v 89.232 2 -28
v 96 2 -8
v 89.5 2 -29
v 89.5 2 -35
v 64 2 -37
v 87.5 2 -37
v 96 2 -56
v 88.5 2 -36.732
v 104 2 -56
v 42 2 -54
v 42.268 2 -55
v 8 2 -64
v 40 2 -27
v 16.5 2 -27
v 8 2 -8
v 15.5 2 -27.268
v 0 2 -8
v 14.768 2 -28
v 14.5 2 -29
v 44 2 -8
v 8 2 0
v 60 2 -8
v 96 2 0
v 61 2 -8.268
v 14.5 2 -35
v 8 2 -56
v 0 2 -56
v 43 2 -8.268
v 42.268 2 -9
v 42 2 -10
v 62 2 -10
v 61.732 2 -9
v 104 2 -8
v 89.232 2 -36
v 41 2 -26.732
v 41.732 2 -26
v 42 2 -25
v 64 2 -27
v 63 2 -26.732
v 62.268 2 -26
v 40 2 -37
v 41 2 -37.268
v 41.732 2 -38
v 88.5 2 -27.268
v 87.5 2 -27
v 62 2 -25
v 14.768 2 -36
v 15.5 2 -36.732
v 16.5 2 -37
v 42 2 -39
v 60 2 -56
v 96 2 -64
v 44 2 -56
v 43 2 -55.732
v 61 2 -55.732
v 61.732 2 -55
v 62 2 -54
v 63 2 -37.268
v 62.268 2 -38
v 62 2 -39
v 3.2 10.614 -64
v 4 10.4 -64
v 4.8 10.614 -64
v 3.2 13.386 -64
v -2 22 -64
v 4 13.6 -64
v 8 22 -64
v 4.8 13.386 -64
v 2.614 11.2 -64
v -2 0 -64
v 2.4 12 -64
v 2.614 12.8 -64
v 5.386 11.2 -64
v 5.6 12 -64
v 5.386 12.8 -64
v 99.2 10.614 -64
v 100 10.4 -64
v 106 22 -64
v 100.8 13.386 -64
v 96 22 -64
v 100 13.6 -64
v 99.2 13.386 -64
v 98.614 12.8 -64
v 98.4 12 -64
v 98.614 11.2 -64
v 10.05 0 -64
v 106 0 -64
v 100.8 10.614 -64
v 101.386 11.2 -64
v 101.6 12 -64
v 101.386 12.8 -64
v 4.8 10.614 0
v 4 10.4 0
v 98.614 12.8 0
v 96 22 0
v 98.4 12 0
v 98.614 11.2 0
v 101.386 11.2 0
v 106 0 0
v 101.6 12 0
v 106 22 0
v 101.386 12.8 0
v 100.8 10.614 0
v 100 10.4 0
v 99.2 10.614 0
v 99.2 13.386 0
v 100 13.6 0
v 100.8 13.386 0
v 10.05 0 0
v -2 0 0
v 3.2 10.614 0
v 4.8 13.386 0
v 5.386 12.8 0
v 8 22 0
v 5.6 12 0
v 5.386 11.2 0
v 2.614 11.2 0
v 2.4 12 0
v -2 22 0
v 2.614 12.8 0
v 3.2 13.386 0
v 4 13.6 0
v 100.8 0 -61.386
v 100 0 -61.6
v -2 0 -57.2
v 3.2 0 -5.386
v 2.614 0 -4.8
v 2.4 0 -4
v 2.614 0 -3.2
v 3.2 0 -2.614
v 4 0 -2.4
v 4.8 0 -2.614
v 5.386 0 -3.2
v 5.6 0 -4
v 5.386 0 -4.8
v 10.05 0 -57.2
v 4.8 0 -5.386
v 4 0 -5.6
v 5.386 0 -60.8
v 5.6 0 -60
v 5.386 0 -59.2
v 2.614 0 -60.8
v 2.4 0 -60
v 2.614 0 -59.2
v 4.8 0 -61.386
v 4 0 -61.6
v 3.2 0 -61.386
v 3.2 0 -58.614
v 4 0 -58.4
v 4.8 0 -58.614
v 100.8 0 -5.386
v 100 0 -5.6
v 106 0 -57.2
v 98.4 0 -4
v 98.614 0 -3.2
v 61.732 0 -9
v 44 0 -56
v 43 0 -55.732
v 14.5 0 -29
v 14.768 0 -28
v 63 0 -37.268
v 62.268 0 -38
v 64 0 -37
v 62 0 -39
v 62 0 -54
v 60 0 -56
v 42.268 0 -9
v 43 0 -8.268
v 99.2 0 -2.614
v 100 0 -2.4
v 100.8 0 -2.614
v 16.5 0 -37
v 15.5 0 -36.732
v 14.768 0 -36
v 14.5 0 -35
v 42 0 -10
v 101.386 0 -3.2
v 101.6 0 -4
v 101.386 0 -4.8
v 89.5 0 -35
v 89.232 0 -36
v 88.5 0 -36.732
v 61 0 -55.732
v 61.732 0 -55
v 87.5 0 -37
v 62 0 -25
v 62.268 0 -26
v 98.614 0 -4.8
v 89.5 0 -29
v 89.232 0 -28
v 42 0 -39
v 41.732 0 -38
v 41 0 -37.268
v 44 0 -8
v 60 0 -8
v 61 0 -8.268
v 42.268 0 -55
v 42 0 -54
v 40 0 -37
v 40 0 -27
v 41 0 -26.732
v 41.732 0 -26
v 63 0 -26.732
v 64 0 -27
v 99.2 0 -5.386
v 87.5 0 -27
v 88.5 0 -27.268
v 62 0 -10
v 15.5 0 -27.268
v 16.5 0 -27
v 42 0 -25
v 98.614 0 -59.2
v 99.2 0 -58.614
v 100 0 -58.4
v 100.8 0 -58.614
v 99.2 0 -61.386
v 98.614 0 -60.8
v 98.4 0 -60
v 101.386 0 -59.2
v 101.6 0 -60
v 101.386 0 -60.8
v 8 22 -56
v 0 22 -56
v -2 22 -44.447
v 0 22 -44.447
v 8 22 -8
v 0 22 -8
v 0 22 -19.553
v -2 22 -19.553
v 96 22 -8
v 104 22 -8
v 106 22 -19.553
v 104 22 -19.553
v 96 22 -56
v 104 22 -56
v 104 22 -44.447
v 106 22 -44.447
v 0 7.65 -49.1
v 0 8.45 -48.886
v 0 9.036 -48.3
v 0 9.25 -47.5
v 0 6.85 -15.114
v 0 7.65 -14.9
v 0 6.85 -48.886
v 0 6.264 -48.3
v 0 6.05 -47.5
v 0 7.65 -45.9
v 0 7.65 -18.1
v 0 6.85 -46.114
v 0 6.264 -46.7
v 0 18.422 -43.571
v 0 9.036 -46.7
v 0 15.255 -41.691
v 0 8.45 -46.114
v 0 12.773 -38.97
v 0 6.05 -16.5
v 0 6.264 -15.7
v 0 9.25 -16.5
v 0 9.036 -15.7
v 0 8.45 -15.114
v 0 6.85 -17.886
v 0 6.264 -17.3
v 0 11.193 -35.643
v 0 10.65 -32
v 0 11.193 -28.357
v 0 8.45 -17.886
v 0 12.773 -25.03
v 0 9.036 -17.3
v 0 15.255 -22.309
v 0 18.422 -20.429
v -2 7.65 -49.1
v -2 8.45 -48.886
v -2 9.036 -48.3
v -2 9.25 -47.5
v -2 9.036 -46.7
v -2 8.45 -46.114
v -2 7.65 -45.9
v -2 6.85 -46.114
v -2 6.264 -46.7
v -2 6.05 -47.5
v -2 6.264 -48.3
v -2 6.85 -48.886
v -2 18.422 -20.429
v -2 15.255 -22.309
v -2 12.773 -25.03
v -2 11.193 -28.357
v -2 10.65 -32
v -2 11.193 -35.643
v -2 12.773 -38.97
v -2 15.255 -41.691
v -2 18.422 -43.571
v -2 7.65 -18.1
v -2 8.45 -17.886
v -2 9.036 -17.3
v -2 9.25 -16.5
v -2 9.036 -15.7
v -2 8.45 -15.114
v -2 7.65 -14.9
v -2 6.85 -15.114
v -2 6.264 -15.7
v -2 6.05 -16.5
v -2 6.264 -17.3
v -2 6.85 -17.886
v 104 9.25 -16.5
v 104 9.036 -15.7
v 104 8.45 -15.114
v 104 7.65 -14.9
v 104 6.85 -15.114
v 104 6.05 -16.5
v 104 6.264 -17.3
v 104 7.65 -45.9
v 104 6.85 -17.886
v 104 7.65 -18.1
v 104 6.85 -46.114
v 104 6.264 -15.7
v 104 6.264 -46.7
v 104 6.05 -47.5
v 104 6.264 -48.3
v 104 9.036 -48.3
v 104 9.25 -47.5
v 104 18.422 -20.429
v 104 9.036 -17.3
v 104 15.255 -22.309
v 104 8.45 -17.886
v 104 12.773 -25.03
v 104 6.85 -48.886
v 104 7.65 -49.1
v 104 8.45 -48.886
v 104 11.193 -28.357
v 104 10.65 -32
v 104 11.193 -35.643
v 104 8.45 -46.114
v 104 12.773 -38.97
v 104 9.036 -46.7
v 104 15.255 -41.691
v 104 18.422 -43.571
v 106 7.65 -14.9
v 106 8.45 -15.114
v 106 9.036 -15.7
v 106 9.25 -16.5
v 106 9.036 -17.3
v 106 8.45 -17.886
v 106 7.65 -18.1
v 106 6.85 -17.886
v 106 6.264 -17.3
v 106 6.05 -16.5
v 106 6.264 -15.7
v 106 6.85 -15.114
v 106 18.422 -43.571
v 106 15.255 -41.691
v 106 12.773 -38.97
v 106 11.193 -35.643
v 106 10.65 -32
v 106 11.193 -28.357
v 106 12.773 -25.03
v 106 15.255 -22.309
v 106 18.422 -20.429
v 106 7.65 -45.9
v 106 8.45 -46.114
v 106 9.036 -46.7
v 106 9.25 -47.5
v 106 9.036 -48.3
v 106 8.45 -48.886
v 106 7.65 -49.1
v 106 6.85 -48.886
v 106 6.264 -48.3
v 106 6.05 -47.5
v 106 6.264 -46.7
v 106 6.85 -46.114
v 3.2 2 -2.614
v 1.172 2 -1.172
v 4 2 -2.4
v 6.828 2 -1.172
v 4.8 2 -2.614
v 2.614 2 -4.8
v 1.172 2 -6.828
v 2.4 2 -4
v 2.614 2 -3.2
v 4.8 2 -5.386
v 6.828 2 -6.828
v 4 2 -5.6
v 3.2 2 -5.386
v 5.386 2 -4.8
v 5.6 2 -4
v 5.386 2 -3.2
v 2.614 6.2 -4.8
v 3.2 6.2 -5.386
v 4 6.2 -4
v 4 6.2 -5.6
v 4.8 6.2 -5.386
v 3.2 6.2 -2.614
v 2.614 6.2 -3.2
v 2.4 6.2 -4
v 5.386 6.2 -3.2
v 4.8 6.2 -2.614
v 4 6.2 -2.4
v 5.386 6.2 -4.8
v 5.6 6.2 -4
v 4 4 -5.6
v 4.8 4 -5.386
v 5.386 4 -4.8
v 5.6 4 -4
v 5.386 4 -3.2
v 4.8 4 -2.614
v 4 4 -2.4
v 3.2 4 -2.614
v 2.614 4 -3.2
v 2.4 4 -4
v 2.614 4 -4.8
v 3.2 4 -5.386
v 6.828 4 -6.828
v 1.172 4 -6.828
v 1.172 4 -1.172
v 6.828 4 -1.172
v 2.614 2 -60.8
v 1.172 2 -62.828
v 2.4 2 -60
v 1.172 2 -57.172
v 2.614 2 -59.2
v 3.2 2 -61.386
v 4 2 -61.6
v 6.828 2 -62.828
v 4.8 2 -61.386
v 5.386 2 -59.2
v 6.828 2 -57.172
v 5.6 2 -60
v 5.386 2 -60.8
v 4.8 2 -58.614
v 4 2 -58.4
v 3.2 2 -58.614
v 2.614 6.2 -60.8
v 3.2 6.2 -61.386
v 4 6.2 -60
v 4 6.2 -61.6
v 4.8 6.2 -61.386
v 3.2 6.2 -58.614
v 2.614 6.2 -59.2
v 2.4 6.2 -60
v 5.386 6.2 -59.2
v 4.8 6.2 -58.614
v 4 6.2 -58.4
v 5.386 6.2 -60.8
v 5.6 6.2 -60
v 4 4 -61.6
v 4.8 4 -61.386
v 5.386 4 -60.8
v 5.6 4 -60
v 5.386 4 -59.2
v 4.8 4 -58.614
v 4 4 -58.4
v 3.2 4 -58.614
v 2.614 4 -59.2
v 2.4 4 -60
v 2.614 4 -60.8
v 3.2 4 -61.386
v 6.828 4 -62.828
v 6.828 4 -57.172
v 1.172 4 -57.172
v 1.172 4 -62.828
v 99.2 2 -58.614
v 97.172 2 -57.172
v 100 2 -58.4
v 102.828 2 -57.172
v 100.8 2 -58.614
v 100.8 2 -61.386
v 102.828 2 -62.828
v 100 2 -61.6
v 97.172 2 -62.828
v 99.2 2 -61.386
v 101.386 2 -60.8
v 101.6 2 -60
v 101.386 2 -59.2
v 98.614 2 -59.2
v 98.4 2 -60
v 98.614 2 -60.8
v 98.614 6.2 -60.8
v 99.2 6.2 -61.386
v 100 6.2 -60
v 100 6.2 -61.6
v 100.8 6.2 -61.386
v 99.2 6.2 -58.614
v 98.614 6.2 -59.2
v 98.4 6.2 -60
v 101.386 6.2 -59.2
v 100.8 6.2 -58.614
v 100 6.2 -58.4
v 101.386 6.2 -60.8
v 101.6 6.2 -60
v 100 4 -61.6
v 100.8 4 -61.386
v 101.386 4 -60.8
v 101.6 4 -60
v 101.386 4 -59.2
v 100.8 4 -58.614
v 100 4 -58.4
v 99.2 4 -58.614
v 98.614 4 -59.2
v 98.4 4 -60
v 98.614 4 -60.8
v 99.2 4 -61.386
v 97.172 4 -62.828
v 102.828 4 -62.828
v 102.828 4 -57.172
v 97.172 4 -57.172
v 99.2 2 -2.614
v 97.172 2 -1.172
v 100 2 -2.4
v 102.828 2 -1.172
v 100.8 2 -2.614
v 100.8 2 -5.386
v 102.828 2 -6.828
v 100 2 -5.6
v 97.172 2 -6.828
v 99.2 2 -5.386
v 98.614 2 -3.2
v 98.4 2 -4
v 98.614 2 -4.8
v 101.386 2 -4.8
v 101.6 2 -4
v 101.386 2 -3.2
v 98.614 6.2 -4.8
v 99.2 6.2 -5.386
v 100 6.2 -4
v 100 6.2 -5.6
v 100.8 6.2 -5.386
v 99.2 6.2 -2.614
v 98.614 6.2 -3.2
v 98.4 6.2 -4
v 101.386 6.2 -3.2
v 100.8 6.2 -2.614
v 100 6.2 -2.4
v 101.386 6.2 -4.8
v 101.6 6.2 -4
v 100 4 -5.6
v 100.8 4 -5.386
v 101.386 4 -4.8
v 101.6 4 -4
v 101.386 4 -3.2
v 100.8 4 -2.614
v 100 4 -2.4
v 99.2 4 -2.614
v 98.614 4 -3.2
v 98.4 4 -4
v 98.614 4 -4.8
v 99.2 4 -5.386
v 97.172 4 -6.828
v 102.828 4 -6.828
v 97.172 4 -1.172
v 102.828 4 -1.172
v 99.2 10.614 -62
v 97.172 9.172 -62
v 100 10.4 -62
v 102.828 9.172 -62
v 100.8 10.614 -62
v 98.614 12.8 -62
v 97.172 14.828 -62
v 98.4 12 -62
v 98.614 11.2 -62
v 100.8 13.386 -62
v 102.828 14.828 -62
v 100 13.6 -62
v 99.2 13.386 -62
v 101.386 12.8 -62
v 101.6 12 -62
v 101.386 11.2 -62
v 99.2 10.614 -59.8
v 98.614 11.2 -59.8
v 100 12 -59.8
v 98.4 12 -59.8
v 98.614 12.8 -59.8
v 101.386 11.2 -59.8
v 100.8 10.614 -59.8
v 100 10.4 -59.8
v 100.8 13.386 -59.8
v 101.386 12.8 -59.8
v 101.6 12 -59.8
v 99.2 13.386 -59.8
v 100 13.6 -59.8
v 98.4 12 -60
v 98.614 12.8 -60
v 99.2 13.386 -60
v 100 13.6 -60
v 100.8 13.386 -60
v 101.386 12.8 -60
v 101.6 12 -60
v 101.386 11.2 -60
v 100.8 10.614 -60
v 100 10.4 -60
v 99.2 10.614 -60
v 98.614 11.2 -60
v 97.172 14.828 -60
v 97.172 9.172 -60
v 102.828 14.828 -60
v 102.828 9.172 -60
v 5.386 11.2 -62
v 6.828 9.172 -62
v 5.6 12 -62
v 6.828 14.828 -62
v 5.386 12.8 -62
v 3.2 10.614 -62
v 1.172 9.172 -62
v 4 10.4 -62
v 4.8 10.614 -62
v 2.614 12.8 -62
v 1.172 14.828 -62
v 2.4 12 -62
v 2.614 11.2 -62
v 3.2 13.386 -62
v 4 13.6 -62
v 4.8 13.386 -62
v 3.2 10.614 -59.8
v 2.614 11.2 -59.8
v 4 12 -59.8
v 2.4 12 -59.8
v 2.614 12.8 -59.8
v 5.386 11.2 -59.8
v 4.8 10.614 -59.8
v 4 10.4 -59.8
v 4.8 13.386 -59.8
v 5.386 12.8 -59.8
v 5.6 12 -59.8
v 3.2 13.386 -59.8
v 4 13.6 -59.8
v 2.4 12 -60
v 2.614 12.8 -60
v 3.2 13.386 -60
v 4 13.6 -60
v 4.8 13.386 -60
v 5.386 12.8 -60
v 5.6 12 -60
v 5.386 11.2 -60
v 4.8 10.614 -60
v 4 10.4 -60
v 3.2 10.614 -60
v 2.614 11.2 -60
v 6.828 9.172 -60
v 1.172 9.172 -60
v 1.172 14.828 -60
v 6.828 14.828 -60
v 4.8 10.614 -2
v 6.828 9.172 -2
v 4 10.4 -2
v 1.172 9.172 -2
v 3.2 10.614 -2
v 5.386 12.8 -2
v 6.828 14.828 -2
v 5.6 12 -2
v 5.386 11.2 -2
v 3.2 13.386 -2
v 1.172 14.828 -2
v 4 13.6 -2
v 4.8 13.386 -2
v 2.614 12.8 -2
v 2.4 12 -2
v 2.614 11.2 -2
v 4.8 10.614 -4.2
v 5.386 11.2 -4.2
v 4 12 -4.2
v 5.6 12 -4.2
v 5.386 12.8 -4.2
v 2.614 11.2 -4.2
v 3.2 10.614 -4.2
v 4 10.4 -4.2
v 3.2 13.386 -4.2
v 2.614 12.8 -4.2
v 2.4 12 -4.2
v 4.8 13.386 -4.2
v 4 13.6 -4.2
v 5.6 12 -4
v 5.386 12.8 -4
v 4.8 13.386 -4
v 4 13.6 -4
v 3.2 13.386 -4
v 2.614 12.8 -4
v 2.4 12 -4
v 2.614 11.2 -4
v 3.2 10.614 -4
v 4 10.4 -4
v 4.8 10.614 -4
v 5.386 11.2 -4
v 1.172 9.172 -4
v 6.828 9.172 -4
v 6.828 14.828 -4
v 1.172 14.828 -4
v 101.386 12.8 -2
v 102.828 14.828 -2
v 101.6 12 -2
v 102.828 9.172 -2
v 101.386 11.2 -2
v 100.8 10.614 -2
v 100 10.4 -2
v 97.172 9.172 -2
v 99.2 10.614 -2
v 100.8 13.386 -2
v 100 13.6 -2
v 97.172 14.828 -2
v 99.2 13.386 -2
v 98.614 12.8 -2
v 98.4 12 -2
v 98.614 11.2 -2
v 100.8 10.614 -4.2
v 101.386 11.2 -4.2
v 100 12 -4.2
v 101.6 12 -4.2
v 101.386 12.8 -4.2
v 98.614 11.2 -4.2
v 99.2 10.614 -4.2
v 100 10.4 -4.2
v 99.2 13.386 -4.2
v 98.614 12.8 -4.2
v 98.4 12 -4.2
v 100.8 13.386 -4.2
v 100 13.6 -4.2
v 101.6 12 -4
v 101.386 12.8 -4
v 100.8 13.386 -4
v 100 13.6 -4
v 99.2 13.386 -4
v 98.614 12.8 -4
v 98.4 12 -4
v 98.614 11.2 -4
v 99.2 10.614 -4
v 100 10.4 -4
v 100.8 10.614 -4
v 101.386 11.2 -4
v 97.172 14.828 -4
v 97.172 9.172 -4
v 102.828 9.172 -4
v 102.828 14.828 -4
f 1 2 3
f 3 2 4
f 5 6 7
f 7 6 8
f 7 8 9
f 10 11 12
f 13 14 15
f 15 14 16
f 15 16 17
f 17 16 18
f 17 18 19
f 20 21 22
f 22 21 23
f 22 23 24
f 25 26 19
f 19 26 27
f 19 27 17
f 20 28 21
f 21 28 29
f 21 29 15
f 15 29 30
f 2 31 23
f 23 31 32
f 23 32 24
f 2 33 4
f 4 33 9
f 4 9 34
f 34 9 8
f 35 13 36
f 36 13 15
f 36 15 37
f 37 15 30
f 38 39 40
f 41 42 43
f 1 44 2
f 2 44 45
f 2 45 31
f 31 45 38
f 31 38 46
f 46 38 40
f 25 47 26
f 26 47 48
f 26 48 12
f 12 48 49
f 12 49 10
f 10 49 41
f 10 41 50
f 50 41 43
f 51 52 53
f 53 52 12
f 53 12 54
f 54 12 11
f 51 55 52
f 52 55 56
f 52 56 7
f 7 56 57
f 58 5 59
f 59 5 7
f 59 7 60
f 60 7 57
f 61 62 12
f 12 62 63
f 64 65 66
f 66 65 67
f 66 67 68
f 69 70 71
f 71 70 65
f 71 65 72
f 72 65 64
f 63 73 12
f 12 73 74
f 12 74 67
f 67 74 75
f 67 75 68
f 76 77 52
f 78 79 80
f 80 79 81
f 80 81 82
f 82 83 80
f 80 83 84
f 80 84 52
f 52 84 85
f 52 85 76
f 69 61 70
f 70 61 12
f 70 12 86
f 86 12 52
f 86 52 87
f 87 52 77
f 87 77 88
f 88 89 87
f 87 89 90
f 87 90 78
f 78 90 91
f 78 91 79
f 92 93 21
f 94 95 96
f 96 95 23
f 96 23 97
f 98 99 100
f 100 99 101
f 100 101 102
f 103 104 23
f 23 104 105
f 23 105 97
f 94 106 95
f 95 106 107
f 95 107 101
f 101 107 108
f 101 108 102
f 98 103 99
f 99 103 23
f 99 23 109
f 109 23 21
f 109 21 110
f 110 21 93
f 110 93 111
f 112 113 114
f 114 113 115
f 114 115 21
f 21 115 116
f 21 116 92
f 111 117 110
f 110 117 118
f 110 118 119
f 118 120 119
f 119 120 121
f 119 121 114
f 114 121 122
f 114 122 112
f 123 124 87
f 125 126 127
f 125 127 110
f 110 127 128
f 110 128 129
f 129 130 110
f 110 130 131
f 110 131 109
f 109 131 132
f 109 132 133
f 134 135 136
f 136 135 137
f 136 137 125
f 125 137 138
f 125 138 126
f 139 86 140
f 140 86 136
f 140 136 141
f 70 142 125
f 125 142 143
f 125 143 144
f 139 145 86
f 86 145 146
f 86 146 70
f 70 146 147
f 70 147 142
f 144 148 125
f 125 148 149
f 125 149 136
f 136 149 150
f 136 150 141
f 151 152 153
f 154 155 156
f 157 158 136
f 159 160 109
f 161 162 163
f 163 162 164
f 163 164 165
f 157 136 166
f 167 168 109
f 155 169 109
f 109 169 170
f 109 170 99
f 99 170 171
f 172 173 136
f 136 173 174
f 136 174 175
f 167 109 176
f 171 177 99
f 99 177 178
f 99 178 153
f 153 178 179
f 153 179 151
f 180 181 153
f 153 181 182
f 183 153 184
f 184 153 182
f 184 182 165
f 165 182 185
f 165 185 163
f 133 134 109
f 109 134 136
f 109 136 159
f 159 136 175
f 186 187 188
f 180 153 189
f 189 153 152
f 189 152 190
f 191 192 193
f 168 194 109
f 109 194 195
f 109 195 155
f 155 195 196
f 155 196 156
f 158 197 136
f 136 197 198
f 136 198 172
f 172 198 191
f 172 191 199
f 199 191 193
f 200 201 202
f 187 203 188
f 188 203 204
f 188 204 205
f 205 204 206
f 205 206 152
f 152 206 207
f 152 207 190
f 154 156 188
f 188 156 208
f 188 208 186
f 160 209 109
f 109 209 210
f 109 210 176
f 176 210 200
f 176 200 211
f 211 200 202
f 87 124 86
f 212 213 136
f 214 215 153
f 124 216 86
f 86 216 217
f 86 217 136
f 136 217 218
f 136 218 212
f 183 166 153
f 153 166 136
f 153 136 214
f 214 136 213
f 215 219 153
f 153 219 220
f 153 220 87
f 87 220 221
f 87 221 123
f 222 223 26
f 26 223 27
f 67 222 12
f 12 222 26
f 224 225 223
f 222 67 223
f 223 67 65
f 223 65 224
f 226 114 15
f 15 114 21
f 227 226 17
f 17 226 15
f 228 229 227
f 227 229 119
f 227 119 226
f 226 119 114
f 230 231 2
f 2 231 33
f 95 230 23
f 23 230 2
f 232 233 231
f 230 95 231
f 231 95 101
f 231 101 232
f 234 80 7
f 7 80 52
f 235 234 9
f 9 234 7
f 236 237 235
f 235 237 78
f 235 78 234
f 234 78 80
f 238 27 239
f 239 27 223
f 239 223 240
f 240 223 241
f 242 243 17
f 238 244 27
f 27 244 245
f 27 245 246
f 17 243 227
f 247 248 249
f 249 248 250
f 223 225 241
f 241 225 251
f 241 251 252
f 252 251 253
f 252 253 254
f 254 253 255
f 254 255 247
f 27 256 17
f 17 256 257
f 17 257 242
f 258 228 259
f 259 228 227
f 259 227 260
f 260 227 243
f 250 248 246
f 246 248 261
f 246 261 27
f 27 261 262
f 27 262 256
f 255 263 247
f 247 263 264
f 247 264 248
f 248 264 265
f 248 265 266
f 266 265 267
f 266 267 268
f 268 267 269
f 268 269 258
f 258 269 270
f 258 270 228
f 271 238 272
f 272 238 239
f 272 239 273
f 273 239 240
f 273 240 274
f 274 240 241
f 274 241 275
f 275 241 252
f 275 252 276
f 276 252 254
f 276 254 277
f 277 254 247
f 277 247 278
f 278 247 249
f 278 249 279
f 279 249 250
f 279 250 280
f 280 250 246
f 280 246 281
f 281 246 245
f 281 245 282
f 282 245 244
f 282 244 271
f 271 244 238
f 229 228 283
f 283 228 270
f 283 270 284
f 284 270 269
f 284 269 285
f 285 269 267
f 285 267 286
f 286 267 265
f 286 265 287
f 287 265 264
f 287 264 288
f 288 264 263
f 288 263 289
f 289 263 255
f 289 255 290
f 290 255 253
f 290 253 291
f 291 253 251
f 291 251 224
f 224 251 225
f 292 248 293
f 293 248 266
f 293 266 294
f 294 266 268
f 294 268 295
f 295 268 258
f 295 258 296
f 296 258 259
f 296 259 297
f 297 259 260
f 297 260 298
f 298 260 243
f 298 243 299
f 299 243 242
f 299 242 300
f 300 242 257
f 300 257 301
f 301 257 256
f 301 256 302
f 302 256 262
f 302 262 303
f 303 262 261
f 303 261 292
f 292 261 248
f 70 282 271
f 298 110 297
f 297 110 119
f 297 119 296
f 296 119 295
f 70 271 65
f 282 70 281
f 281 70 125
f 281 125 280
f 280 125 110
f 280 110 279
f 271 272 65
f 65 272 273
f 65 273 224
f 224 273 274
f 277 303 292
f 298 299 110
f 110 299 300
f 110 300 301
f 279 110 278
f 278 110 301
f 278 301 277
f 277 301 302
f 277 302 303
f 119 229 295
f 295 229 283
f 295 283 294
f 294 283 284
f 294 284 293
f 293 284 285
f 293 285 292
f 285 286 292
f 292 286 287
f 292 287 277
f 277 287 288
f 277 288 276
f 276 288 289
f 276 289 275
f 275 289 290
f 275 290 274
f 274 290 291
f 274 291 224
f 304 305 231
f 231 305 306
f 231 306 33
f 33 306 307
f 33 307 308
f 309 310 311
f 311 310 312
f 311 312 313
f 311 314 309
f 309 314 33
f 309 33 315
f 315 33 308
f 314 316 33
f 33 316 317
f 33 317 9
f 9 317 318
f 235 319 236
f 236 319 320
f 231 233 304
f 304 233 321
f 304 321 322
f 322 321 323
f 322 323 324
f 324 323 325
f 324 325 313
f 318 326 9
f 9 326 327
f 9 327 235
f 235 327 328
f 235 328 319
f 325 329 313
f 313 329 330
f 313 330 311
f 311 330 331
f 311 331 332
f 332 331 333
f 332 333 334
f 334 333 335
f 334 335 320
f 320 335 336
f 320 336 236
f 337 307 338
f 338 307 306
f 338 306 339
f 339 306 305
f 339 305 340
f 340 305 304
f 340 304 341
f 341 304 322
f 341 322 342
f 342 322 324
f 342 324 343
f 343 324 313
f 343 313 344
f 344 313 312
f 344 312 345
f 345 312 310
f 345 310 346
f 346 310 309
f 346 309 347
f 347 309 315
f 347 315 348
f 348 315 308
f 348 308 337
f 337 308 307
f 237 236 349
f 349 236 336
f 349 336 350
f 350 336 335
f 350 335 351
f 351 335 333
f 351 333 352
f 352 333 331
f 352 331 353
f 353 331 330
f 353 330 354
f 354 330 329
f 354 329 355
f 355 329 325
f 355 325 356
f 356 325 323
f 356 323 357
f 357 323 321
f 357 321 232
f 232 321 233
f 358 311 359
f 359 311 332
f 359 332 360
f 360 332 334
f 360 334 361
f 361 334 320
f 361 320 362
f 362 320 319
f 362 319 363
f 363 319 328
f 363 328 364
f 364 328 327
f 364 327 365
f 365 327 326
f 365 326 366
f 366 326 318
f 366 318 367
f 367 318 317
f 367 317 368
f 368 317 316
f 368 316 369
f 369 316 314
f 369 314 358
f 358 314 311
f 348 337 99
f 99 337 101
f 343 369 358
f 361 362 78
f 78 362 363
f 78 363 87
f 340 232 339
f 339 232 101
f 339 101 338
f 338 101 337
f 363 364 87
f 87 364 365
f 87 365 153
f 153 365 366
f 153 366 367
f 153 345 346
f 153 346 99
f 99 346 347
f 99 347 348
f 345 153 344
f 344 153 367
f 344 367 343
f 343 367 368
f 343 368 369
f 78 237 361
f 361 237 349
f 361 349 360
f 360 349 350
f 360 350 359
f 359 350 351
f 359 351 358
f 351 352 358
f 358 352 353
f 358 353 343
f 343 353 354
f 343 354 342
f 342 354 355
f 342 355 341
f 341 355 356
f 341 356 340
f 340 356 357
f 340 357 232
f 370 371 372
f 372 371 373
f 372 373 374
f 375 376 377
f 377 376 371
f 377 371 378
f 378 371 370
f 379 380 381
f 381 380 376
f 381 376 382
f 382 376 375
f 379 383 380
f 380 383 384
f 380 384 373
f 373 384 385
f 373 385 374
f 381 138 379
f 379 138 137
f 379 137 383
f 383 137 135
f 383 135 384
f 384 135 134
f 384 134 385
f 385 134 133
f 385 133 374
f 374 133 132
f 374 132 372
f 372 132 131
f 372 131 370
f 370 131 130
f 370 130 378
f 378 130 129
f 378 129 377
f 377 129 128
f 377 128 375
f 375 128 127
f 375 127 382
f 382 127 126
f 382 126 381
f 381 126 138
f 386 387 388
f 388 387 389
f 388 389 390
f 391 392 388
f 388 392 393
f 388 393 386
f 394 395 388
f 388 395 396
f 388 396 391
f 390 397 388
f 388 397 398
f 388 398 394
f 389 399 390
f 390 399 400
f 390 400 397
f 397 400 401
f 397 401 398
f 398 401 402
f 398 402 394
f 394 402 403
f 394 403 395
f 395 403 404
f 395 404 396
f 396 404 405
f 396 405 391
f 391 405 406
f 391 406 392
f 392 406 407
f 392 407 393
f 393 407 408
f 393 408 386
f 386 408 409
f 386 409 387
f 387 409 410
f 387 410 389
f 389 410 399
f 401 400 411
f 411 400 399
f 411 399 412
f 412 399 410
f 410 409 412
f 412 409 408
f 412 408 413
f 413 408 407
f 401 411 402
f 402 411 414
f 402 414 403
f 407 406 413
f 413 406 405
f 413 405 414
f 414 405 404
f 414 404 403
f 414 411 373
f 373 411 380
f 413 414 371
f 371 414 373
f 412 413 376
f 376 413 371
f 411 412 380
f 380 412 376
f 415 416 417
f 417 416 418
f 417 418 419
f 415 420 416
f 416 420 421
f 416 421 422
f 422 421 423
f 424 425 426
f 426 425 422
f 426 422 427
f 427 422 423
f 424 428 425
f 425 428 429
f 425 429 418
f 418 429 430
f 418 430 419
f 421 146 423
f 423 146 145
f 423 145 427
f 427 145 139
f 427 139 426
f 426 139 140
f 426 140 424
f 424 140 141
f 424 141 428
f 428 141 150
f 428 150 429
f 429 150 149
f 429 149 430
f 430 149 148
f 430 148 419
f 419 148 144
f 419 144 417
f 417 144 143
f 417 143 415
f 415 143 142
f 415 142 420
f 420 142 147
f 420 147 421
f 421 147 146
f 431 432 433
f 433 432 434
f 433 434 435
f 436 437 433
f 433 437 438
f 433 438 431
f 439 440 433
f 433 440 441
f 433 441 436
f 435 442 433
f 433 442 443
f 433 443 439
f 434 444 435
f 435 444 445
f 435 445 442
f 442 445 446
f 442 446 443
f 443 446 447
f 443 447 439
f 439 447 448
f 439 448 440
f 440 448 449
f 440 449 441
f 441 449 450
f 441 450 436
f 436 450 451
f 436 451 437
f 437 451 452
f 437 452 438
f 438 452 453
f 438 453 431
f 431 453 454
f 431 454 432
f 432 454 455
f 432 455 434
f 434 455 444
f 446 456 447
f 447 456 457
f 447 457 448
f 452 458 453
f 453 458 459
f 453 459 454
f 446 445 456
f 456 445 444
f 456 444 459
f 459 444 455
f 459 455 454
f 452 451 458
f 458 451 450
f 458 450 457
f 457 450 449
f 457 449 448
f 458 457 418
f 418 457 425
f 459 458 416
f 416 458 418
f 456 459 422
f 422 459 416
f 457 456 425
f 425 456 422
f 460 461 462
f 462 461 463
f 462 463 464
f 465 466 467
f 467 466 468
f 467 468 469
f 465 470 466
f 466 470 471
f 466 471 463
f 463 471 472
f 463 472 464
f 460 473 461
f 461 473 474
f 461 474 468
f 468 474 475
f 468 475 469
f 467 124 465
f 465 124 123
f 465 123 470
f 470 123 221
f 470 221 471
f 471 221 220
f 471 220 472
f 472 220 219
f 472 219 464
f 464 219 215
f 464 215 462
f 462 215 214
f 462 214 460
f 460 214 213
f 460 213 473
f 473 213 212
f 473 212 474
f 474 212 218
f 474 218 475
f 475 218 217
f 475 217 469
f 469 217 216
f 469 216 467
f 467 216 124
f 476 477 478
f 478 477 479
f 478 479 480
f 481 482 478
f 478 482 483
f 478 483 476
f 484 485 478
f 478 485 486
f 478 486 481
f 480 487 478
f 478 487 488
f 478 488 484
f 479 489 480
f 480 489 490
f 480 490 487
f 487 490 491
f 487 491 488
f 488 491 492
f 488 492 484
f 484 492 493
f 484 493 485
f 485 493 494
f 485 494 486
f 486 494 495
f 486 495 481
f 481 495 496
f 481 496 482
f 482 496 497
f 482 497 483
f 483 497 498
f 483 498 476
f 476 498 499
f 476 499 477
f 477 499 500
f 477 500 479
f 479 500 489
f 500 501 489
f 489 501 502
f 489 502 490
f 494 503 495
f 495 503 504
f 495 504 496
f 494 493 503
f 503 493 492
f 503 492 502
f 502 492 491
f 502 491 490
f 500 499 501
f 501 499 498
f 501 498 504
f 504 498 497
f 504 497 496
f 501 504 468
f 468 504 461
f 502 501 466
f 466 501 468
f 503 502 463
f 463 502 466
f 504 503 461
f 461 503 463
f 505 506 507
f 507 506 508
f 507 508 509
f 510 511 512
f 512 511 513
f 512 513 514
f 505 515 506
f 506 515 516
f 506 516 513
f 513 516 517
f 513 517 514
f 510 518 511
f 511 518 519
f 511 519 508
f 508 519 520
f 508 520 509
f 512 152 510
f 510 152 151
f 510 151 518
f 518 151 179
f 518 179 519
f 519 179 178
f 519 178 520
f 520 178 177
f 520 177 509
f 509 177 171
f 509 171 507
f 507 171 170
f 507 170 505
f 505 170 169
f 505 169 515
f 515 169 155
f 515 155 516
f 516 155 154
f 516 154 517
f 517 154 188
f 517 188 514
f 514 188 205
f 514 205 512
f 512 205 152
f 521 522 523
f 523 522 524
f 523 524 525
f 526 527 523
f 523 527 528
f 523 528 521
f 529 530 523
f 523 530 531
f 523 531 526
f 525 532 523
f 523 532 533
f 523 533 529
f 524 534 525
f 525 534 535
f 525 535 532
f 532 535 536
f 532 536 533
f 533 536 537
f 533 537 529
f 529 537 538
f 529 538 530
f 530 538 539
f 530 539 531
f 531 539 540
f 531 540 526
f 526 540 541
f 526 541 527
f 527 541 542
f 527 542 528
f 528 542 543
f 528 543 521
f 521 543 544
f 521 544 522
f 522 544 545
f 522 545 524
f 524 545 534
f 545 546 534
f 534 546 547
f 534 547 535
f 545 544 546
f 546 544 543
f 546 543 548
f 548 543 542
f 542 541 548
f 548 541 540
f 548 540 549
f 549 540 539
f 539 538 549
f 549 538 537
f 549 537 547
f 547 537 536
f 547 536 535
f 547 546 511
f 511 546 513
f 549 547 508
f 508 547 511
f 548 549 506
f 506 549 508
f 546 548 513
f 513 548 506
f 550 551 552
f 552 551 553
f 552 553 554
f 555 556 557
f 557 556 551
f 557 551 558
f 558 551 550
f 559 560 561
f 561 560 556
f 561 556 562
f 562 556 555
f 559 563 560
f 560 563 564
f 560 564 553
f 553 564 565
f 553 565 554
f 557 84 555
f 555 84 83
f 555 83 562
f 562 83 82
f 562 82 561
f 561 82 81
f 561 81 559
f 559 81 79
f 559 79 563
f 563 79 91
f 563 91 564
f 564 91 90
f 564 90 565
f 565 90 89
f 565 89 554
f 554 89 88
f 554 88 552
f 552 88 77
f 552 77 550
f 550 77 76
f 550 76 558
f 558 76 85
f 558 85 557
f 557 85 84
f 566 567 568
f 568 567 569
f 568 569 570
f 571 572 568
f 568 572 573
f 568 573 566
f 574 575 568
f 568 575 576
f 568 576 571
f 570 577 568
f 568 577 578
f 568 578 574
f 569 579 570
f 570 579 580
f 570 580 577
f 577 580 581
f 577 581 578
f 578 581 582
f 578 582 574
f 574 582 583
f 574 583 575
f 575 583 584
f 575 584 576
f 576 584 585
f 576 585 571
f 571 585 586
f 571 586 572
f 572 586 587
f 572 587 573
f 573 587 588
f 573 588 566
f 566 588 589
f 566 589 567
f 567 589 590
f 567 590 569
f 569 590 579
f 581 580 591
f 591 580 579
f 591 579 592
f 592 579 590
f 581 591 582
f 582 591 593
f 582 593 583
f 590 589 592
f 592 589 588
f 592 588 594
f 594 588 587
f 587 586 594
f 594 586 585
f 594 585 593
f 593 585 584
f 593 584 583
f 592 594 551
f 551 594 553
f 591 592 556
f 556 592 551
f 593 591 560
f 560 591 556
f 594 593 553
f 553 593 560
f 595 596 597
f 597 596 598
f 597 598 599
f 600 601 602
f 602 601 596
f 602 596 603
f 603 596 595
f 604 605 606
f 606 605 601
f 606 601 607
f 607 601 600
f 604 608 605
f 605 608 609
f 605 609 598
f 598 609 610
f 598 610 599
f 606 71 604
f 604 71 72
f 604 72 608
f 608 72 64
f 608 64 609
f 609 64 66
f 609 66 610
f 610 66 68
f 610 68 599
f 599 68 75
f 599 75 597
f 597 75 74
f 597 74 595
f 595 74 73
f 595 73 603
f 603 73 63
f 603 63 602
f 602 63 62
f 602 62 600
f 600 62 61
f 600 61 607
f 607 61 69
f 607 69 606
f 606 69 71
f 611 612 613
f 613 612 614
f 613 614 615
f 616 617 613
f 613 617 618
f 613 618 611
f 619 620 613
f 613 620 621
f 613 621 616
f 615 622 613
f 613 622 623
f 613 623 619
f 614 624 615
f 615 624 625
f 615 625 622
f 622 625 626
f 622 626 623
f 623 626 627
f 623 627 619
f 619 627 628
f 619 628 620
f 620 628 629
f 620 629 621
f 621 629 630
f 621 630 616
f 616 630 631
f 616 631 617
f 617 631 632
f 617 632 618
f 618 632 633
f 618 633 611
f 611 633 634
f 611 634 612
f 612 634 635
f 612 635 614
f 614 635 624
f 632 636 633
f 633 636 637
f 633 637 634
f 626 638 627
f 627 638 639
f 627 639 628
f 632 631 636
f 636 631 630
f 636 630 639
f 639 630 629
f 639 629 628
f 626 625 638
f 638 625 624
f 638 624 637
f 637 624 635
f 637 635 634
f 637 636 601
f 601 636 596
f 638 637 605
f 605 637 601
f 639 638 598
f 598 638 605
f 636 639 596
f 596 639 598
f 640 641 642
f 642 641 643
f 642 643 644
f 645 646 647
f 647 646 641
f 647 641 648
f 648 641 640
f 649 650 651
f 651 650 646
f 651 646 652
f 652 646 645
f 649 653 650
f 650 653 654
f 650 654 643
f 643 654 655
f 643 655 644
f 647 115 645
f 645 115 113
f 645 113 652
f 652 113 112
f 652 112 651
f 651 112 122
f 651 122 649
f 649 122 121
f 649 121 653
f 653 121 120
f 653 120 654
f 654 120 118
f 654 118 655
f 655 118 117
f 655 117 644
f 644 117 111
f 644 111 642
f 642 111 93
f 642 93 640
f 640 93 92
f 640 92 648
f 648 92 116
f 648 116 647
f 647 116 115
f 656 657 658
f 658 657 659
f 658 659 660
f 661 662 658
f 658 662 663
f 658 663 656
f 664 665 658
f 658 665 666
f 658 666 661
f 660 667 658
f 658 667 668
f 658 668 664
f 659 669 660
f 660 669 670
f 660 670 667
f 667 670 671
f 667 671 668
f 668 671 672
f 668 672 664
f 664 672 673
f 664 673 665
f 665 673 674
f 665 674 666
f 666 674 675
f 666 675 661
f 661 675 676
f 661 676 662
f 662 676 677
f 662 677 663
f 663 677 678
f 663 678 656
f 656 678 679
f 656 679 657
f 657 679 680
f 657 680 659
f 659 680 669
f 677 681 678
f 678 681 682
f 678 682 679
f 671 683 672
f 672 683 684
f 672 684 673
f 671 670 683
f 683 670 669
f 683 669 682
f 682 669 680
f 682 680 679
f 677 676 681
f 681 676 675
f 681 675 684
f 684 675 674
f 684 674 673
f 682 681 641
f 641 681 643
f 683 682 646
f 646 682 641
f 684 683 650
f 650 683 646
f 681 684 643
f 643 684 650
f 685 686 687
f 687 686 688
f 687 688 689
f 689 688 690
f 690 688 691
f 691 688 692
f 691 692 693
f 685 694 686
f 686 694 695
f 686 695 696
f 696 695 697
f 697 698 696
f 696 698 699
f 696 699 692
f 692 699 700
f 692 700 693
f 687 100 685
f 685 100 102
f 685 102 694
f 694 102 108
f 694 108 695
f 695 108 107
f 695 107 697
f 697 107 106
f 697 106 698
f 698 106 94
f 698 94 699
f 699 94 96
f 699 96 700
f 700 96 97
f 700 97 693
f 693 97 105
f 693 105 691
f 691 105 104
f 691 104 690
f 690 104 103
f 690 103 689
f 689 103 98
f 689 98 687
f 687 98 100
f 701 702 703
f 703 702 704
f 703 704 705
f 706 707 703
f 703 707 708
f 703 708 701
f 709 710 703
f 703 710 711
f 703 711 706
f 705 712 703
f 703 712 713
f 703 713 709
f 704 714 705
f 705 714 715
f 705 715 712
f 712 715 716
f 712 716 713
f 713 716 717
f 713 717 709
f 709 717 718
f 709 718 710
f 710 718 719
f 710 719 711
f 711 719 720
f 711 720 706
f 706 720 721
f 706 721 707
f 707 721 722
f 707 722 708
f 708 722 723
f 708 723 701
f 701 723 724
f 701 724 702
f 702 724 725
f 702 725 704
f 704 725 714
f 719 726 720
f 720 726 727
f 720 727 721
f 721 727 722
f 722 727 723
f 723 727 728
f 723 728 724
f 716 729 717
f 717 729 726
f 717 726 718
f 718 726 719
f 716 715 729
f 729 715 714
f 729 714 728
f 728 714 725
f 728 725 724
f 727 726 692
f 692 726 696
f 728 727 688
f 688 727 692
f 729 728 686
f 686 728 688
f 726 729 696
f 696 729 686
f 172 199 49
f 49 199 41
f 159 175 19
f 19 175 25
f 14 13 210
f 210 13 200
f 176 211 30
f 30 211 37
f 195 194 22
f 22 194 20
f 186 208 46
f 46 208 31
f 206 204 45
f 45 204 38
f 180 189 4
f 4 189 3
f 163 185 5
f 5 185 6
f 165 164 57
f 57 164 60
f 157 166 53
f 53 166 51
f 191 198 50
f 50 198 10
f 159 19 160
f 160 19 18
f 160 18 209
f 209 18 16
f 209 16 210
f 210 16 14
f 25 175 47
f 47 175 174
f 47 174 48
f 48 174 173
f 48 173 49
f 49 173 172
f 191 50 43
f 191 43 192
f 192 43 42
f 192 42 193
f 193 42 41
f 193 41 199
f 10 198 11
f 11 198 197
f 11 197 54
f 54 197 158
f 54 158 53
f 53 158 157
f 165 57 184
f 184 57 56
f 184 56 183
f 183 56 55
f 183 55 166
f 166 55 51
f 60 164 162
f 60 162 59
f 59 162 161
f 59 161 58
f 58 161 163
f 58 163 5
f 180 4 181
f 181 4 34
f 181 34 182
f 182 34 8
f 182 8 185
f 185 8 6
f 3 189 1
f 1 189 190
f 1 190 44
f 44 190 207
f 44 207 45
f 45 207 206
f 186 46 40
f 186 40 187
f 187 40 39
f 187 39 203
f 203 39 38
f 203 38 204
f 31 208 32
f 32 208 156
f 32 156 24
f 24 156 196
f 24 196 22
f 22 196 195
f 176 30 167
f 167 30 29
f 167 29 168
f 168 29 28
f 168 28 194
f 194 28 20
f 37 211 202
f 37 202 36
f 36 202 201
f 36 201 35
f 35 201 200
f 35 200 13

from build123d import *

# Parameters (mm, degrees)
SZKIC1_W                    = 104
SZKIC1_H                    = 64
DODANIE_WYCI_GNI_CIE1_DEPTH = 2
SZKIC2_W                    = 8
SZKIC2_H                    = 8
DODANIE_WYCI_GNI_CIE2_DEPTH = 20
SZKIC4_R                    = 1.6
DODANIE_WYCI_GNI_CIE3_DEPTH = 2
DODANIE_WYCI_GNI_CIE4_START = 2
SZKIC5_R                    = 1.6
DODANIE_WYCI_GNI_CIE4_DEPTH = 2
SFAZOWANIE1_SIZE            = 2
SZKIC6_W                    = 5.65685425
SZKIC6_H                    = 5.65685425
SZKIC6_R                    = 1.6
WYTNIJ_WYCI_GNI_CIE2_DEPTH  = 4
SZKIC6_AGAIN_R              = 1.6
WYTNIJ_WYCI_GNI_CIE3_DEPTH  = 6.2
DODANIE_WYCI_GNI_CIE5_DEPTH = 2
SZKIC8_W                    = 5.65685425
SZKIC8_H                    = 5.65685425
SZKIC8_R                    = 1.6
WYTNIJ_WYCI_GNI_CIE4_DEPTH  = 4
SZKIC8_2_R                  = 1.6
WYTNIJ_WYCI_GNI_CIE5_DEPTH  = 4.2
SZKIC8_3_W                  = 5.65685425
SZKIC8_3_H                  = 5.65685425
SZKIC8_3_R                  = 1.6
DODANIE_WYCI_GNI_CIE6_DEPTH = 2
WYTNIJ_WYCI_GNI_CIE6_START  = -4
SZKIC9_W                    = 5.65685425
SZKIC9_H                    = 5.65685425
SZKIC9_R                    = 1.6
WYTNIJ_WYCI_GNI_CIE6_DEPTH  = 4
WYTNIJ_WYCI_GNI_CIE7_START  = -4.2
SZKIC9_2_R                  = 1.6
WYTNIJ_WYCI_GNI_CIE7_DEPTH  = 4.2
DODANIE_WYCI_GNI_CIE7_START = -2
SZKIC9_3_W                  = 5.65685425
SZKIC9_3_H                  = 5.65685425
SZKIC9_3_R                  = 1.6
DODANIE_WYCI_GNI_CIE7_DEPTH = 2
SZKIC10_W                   = 20
SZKIC10_H                   = 10
SZKIC10_W_2                 = 27.5
SZKIC10_H_2                 = 19
WYTNIJ_WYCI_GNI_CIE8_DEPTH  = 9
SZKIC11_W                   = 2
SZKIC11_H                   = 2
DODANIE_WYCI_GNI_CIE8_DEPTH = 64
ZAOKR_GLENIE1_R             = 2


with BuildPart() as part:
    # Szkic1 → Dodanie-wyciągnięcie1 (new body)
    with BuildSketch(Plane(origin=(0, 0, 0), x_dir=(1, 0, 0), z_dir=(0, 1, 0))):
        with Locations((52, 32)):
            Rectangle(SZKIC1_W, SZKIC1_H)
    extrude(amount=DODANIE_WYCI_GNI_CIE1_DEPTH)

    # Szkic2 → Dodanie-wyciągnięcie2 (add)
    with BuildSketch(Plane(origin=(0, 2, 0), x_dir=(1, 0, 0), z_dir=(0, 1, 0))):
        with Locations((4, 60)):
            Rectangle(SZKIC2_W, SZKIC2_H)
        with Locations((4, 4)):
            Rectangle(SZKIC2_W, SZKIC2_H)
        with Locations((100, 4)):
            Rectangle(SZKIC2_W, SZKIC2_H)
        with Locations((100, 60)):
            Rectangle(SZKIC2_W, SZKIC2_H)
    extrude(amount=DODANIE_WYCI_GNI_CIE2_DEPTH)

    # Szkic4 → Dodanie-wyciągnięcie3 (add)
    # profile 1 of 2: a face of its own
    with BuildSketch(Plane.ZY):
        with BuildLine():
            Line((-8, 2), (-8, 22))
            Line((-8, 22), (-19.553012413, 22))
            ThreePointArc((-19.553012413, 22), (-32, 10.65), (-44.446987587, 22))
            Line((-44.446987587, 22), (-56, 22))
            Line((-56, 22), (-56, 2))
            Line((-56, 2), (-8, 2))
        make_face()
        with Locations((-47.5, 7.65)):
            Circle(SZKIC4_R, mode=Mode.SUBTRACT)
        with Locations((-16.5, 7.65)):
            Circle(SZKIC4_R, mode=Mode.SUBTRACT)
    # profile 2 of 2: a face of its own
    with BuildSketch(Plane.ZY):
        Polygon((-64, 22), (-64, 0), (0, 0), (0, 22), (-8, 22), (-8, 2), (-56, 2), (-56, 22), align=None)
    extrude(amount=DODANIE_WYCI_GNI_CIE3_DEPTH)

    # Szkic5 → Dodanie-wyciągnięcie4 (add)
    # profile 1 of 2: a face of its own
    with BuildSketch(Plane(origin=(104, 0, 0), x_dir=(0, 0, -1), z_dir=(1, 0, 0)).offset(DODANIE_WYCI_GNI_CIE4_START)):
        with BuildLine():
            Line((56, 2), (56, 22))
            Line((56, 22), (44.446987587, 22))
            ThreePointArc((44.446987587, 22), (32, 10.65), (19.553012413, 22))
            Line((19.553012413, 22), (8, 22))
            Line((8, 22), (8, 2))
            Line((8, 2), (56, 2))
        make_face()
        with Locations(Location((16.5, 7.65, 0), (0, 0, 180))):
            Circle(SZKIC5_R, mode=Mode.SUBTRACT)
        with Locations(Location((47.5, 7.65, 0), (0, 0, 180))):
            Circle(SZKIC5_R, mode=Mode.SUBTRACT)
    # profile 2 of 2: a face of its own
    with BuildSketch(Plane(origin=(104, 0, 0), x_dir=(0, 0, -1), z_dir=(1, 0, 0)).offset(DODANIE_WYCI_GNI_CIE4_START)):
        Polygon((0, 22), (0, 0), (64, 0), (64, 22), (56, 22), (56, 2), (8, 2), (8, 22), align=None)
    extrude(amount=-DODANIE_WYCI_GNI_CIE4_DEPTH)

    # Sfazowanie1
    sfazowanie1_edges = [part.edges().sort_by_distance(p)[0] for p in [
        (-2, 0, -32),
        (106, 0, -32),
    ]]
    chamfer(sfazowanie1_edges, length=SFAZOWANIE1_SIZE)

    # Szkic6 → Wytnij-wyciągnięcie2 (cut)
    # profile 1 of 4: a face of its own
    with BuildSketch(Plane.XZ):
        with Locations((4, -4)):
            Rectangle(SZKIC6_W, SZKIC6_H)
        with Locations(Location((4, -4, 0), (0, 0, 270))):
            Circle(SZKIC6_R, mode=Mode.SUBTRACT)
    # profile 2 of 4: a face of its own
    with BuildSketch(Plane.XZ):
        with Locations((4, -60)):
            Rectangle(SZKIC6_W, SZKIC6_H)
        with Locations(Location((4, -60, 0), (0, 0, 270))):
            Circle(SZKIC6_R, mode=Mode.SUBTRACT)
    # profile 3 of 4: a face of its own
    with BuildSketch(Plane.XZ):
        with Locations((100, -60)):
            Rectangle(SZKIC6_W, SZKIC6_H)
        with Locations(Location((100, -60, 0), (0, 0, 270))):
            Circle(SZKIC6_R, mode=Mode.SUBTRACT)
    # profile 4 of 4: a face of its own
    with BuildSketch(Plane.XZ):
        with Locations((100, -4)):
            Rectangle(SZKIC6_W, SZKIC6_H)
        with Locations(Location((100, -4, 0), (0, 0, 270))):
            Circle(SZKIC6_R, mode=Mode.SUBTRACT)
    extrude(amount=-WYTNIJ_WYCI_GNI_CIE2_DEPTH, mode=Mode.SUBTRACT)

    # Szkic6 again → Wytnij-wyciągnięcie3 (cut)
    with BuildSketch(Plane.XZ):
        with Locations(Location((4, -4, 0), (0, 0, 270))):
            Circle(SZKIC6_AGAIN_R)
        with Locations(Location((4, -60, 0), (0, 0, 270))):
            Circle(SZKIC6_AGAIN_R)
        with Locations(Location((100, -60, 0), (0, 0, 270))):
            Circle(SZKIC6_AGAIN_R)
        with Locations(Location((100, -4, 0), (0, 0, 270))):
            Circle(SZKIC6_AGAIN_R)
    extrude(amount=-WYTNIJ_WYCI_GNI_CIE3_DEPTH, mode=Mode.SUBTRACT)

    # Szkic6 → Dodanie-wyciągnięcie5 (add)
    # profile 1 of 4: a face of its own
    with BuildSketch(Plane.XZ):
        with Locations((4, -4)):
            Rectangle(SZKIC6_W, SZKIC6_H)
        with Locations(Location((4, -4, 0), (0, 0, 270))):
            Circle(SZKIC6_R, mode=Mode.SUBTRACT)
    # profile 2 of 4: a face of its own
    with BuildSketch(Plane.XZ):
        with Locations((4, -60)):
            Rectangle(SZKIC6_W, SZKIC6_H)
        with Locations(Location((4, -60, 0), (0, 0, 270))):
            Circle(SZKIC6_R, mode=Mode.SUBTRACT)
    # profile 3 of 4: a face of its own
    with BuildSketch(Plane.XZ):
        with Locations((100, -60)):
            Rectangle(SZKIC6_W, SZKIC6_H)
        with Locations(Location((100, -60, 0), (0, 0, 270))):
            Circle(SZKIC6_R, mode=Mode.SUBTRACT)
    # profile 4 of 4: a face of its own
    with BuildSketch(Plane.XZ):
        with Locations((100, -4)):
            Rectangle(SZKIC6_W, SZKIC6_H)
        with Locations(Location((100, -4, 0), (0, 0, 270))):
            Circle(SZKIC6_R, mode=Mode.SUBTRACT)
    extrude(amount=-DODANIE_WYCI_GNI_CIE5_DEPTH)

    # Szkic8 → Wytnij-wyciągnięcie4 (cut)
    # profile 1 of 2: a face of its own
    with BuildSketch(Plane(origin=(0, 0, -64), x_dir=(-1, 0, 0), z_dir=(0, 0, -1))):
        with Locations((-4, 12)):
            Rectangle(SZKIC8_W, SZKIC8_H)
        with Locations((-4, 12)):
            Circle(SZKIC8_R, mode=Mode.SUBTRACT)
    # profile 2 of 2: a face of its own
    with BuildSketch(Plane(origin=(0, 0, -64), x_dir=(-1, 0, 0), z_dir=(0, 0, -1))):
        with Locations((-100, 12)):
            Rectangle(SZKIC8_W, SZKIC8_H)
        with Locations((-100, 12)):
            Circle(SZKIC8_R, mode=Mode.SUBTRACT)
    extrude(amount=-WYTNIJ_WYCI_GNI_CIE4_DEPTH, mode=Mode.SUBTRACT)

    # Szkic8<2> → Wytnij-wyciągnięcie5 (cut)
    with BuildSketch(Plane(origin=(0, 0, -64), x_dir=(-1, 0, 0), z_dir=(0, 0, -1))):
        with Locations((-4, 12)):
            Circle(SZKIC8_2_R)
        with Locations((-100, 12)):
            Circle(SZKIC8_2_R)
    extrude(amount=-WYTNIJ_WYCI_GNI_CIE5_DEPTH, mode=Mode.SUBTRACT)

    # Szkic8<3> → Dodanie-wyciągnięcie6 (add)
    # profile 1 of 2: a face of its own
    with BuildSketch(Plane(origin=(0, 0, -64), x_dir=(-1, 0, 0), z_dir=(0, 0, -1))):
        with Locations((-4, 12)):
            Rectangle(SZKIC8_3_W, SZKIC8_3_H)
        with Locations((-4, 12)):
            Circle(SZKIC8_3_R, mode=Mode.SUBTRACT)
    # profile 2 of 2: a face of its own
    with BuildSketch(Plane(origin=(0, 0, -64), x_dir=(-1, 0, 0), z_dir=(0, 0, -1))):
        with Locations((-100, 12)):
            Rectangle(SZKIC8_3_W, SZKIC8_3_H)
        with Locations((-100, 12)):
            Circle(SZKIC8_3_R, mode=Mode.SUBTRACT)
    extrude(amount=-DODANIE_WYCI_GNI_CIE6_DEPTH)

    # Szkic9 → Wytnij-wyciągnięcie6 (cut)
    # profile 1 of 2: a face of its own
    with BuildSketch(Plane.XY.offset(WYTNIJ_WYCI_GNI_CIE6_START)):
        with Locations((100, 12)):
            Rectangle(SZKIC9_W, SZKIC9_H)
        with Locations(Location((100, 12, 0), (0, 0, 180))):
            Circle(SZKIC9_R, mode=Mode.SUBTRACT)
    # profile 2 of 2: a face of its own
    with BuildSketch(Plane.XY.offset(WYTNIJ_WYCI_GNI_CIE6_START)):
        with Locations((4, 12)):
            Rectangle(SZKIC9_W, SZKIC9_H)
        with Locations(Location((4, 12, 0), (0, 0, 180))):
            Circle(SZKIC9_R, mode=Mode.SUBTRACT)
    extrude(amount=WYTNIJ_WYCI_GNI_CIE6_DEPTH, mode=Mode.SUBTRACT)

    # Szkic9<2> → Wytnij-wyciągnięcie7 (cut)
    with BuildSketch(Plane.XY.offset(WYTNIJ_WYCI_GNI_CIE7_START)):
        with Locations(Location((100, 12, 0), (0, 0, 180))):
            Circle(SZKIC9_2_R)
        with Locations(Location((4, 12, 0), (0, 0, 180))):
            Circle(SZKIC9_2_R)
    extrude(amount=WYTNIJ_WYCI_GNI_CIE7_DEPTH, mode=Mode.SUBTRACT)

    # Szkic9<3> → Dodanie-wyciągnięcie7 (add)
    # profile 1 of 2: a face of its own
    with BuildSketch(Plane.XY.offset(DODANIE_WYCI_GNI_CIE7_START)):
        with Locations((100, 12)):
            Rectangle(SZKIC9_3_W, SZKIC9_3_H)
        with Locations(Location((100, 12, 0), (0, 0, 180))):
            Circle(SZKIC9_3_R, mode=Mode.SUBTRACT)
    # profile 2 of 2: a face of its own
    with BuildSketch(Plane.XY.offset(DODANIE_WYCI_GNI_CIE7_START)):
        with Locations((4, 12)):
            Rectangle(SZKIC9_3_W, SZKIC9_3_H)
        with Locations(Location((4, 12, 0), (0, 0, 180))):
            Circle(SZKIC9_3_R, mode=Mode.SUBTRACT)
    extrude(amount=DODANIE_WYCI_GNI_CIE7_DEPTH)

    # Szkic10 → Wytnij-wyciągnięcie8 (cut)
    with BuildSketch(Plane.XZ):
        with Locations((52, -32)):
            Rectangle(SZKIC10_W, SZKIC10_H)
        with Locations((28.25, -32)):
            Rectangle(SZKIC10_W_2, SZKIC10_H)
        with Locations((52, -17.5)):
            Rectangle(SZKIC10_W, SZKIC10_H_2)
        with Locations((52, -46.5)):
            Rectangle(SZKIC10_W, SZKIC10_H_2)
        with Locations((75.75, -32)):
            Rectangle(SZKIC10_W_2, SZKIC10_H)
    extrude(amount=-WYTNIJ_WYCI_GNI_CIE8_DEPTH, mode=Mode.SUBTRACT)

    # Szkic11 → Dodanie-wyciągnięcie8 (add)
    with BuildSketch(Plane.XY):
        with Locations((-1, 1)):
            Rectangle(SZKIC11_W, SZKIC11_H)
        with Locations((105, 1)):
            Rectangle(SZKIC11_W, SZKIC11_H)
    extrude(amount=-DODANIE_WYCI_GNI_CIE8_DEPTH)

    # Zaokrąglenie1
    zaokr_glenie1_edges = [part.edges().sort_by_distance(p)[0] for p in [
        (42, 1, -37),
        (14.5, 1, -37),
        (14.5, 1, -27),
        (42, 1, -27),
        (42, 1, -8),
        (62, 1, -8),
        (62, 1, -27),
        (89.5, 1, -27),
        (89.5, 1, -37),
        (62, 1, -37),
        (62, 1, -56),
        (42, 1, -56),
    ]]
    fillet(zaokr_glenie1_edges, radius=ZAOKR_GLENIE1_R)


solid = part.part
